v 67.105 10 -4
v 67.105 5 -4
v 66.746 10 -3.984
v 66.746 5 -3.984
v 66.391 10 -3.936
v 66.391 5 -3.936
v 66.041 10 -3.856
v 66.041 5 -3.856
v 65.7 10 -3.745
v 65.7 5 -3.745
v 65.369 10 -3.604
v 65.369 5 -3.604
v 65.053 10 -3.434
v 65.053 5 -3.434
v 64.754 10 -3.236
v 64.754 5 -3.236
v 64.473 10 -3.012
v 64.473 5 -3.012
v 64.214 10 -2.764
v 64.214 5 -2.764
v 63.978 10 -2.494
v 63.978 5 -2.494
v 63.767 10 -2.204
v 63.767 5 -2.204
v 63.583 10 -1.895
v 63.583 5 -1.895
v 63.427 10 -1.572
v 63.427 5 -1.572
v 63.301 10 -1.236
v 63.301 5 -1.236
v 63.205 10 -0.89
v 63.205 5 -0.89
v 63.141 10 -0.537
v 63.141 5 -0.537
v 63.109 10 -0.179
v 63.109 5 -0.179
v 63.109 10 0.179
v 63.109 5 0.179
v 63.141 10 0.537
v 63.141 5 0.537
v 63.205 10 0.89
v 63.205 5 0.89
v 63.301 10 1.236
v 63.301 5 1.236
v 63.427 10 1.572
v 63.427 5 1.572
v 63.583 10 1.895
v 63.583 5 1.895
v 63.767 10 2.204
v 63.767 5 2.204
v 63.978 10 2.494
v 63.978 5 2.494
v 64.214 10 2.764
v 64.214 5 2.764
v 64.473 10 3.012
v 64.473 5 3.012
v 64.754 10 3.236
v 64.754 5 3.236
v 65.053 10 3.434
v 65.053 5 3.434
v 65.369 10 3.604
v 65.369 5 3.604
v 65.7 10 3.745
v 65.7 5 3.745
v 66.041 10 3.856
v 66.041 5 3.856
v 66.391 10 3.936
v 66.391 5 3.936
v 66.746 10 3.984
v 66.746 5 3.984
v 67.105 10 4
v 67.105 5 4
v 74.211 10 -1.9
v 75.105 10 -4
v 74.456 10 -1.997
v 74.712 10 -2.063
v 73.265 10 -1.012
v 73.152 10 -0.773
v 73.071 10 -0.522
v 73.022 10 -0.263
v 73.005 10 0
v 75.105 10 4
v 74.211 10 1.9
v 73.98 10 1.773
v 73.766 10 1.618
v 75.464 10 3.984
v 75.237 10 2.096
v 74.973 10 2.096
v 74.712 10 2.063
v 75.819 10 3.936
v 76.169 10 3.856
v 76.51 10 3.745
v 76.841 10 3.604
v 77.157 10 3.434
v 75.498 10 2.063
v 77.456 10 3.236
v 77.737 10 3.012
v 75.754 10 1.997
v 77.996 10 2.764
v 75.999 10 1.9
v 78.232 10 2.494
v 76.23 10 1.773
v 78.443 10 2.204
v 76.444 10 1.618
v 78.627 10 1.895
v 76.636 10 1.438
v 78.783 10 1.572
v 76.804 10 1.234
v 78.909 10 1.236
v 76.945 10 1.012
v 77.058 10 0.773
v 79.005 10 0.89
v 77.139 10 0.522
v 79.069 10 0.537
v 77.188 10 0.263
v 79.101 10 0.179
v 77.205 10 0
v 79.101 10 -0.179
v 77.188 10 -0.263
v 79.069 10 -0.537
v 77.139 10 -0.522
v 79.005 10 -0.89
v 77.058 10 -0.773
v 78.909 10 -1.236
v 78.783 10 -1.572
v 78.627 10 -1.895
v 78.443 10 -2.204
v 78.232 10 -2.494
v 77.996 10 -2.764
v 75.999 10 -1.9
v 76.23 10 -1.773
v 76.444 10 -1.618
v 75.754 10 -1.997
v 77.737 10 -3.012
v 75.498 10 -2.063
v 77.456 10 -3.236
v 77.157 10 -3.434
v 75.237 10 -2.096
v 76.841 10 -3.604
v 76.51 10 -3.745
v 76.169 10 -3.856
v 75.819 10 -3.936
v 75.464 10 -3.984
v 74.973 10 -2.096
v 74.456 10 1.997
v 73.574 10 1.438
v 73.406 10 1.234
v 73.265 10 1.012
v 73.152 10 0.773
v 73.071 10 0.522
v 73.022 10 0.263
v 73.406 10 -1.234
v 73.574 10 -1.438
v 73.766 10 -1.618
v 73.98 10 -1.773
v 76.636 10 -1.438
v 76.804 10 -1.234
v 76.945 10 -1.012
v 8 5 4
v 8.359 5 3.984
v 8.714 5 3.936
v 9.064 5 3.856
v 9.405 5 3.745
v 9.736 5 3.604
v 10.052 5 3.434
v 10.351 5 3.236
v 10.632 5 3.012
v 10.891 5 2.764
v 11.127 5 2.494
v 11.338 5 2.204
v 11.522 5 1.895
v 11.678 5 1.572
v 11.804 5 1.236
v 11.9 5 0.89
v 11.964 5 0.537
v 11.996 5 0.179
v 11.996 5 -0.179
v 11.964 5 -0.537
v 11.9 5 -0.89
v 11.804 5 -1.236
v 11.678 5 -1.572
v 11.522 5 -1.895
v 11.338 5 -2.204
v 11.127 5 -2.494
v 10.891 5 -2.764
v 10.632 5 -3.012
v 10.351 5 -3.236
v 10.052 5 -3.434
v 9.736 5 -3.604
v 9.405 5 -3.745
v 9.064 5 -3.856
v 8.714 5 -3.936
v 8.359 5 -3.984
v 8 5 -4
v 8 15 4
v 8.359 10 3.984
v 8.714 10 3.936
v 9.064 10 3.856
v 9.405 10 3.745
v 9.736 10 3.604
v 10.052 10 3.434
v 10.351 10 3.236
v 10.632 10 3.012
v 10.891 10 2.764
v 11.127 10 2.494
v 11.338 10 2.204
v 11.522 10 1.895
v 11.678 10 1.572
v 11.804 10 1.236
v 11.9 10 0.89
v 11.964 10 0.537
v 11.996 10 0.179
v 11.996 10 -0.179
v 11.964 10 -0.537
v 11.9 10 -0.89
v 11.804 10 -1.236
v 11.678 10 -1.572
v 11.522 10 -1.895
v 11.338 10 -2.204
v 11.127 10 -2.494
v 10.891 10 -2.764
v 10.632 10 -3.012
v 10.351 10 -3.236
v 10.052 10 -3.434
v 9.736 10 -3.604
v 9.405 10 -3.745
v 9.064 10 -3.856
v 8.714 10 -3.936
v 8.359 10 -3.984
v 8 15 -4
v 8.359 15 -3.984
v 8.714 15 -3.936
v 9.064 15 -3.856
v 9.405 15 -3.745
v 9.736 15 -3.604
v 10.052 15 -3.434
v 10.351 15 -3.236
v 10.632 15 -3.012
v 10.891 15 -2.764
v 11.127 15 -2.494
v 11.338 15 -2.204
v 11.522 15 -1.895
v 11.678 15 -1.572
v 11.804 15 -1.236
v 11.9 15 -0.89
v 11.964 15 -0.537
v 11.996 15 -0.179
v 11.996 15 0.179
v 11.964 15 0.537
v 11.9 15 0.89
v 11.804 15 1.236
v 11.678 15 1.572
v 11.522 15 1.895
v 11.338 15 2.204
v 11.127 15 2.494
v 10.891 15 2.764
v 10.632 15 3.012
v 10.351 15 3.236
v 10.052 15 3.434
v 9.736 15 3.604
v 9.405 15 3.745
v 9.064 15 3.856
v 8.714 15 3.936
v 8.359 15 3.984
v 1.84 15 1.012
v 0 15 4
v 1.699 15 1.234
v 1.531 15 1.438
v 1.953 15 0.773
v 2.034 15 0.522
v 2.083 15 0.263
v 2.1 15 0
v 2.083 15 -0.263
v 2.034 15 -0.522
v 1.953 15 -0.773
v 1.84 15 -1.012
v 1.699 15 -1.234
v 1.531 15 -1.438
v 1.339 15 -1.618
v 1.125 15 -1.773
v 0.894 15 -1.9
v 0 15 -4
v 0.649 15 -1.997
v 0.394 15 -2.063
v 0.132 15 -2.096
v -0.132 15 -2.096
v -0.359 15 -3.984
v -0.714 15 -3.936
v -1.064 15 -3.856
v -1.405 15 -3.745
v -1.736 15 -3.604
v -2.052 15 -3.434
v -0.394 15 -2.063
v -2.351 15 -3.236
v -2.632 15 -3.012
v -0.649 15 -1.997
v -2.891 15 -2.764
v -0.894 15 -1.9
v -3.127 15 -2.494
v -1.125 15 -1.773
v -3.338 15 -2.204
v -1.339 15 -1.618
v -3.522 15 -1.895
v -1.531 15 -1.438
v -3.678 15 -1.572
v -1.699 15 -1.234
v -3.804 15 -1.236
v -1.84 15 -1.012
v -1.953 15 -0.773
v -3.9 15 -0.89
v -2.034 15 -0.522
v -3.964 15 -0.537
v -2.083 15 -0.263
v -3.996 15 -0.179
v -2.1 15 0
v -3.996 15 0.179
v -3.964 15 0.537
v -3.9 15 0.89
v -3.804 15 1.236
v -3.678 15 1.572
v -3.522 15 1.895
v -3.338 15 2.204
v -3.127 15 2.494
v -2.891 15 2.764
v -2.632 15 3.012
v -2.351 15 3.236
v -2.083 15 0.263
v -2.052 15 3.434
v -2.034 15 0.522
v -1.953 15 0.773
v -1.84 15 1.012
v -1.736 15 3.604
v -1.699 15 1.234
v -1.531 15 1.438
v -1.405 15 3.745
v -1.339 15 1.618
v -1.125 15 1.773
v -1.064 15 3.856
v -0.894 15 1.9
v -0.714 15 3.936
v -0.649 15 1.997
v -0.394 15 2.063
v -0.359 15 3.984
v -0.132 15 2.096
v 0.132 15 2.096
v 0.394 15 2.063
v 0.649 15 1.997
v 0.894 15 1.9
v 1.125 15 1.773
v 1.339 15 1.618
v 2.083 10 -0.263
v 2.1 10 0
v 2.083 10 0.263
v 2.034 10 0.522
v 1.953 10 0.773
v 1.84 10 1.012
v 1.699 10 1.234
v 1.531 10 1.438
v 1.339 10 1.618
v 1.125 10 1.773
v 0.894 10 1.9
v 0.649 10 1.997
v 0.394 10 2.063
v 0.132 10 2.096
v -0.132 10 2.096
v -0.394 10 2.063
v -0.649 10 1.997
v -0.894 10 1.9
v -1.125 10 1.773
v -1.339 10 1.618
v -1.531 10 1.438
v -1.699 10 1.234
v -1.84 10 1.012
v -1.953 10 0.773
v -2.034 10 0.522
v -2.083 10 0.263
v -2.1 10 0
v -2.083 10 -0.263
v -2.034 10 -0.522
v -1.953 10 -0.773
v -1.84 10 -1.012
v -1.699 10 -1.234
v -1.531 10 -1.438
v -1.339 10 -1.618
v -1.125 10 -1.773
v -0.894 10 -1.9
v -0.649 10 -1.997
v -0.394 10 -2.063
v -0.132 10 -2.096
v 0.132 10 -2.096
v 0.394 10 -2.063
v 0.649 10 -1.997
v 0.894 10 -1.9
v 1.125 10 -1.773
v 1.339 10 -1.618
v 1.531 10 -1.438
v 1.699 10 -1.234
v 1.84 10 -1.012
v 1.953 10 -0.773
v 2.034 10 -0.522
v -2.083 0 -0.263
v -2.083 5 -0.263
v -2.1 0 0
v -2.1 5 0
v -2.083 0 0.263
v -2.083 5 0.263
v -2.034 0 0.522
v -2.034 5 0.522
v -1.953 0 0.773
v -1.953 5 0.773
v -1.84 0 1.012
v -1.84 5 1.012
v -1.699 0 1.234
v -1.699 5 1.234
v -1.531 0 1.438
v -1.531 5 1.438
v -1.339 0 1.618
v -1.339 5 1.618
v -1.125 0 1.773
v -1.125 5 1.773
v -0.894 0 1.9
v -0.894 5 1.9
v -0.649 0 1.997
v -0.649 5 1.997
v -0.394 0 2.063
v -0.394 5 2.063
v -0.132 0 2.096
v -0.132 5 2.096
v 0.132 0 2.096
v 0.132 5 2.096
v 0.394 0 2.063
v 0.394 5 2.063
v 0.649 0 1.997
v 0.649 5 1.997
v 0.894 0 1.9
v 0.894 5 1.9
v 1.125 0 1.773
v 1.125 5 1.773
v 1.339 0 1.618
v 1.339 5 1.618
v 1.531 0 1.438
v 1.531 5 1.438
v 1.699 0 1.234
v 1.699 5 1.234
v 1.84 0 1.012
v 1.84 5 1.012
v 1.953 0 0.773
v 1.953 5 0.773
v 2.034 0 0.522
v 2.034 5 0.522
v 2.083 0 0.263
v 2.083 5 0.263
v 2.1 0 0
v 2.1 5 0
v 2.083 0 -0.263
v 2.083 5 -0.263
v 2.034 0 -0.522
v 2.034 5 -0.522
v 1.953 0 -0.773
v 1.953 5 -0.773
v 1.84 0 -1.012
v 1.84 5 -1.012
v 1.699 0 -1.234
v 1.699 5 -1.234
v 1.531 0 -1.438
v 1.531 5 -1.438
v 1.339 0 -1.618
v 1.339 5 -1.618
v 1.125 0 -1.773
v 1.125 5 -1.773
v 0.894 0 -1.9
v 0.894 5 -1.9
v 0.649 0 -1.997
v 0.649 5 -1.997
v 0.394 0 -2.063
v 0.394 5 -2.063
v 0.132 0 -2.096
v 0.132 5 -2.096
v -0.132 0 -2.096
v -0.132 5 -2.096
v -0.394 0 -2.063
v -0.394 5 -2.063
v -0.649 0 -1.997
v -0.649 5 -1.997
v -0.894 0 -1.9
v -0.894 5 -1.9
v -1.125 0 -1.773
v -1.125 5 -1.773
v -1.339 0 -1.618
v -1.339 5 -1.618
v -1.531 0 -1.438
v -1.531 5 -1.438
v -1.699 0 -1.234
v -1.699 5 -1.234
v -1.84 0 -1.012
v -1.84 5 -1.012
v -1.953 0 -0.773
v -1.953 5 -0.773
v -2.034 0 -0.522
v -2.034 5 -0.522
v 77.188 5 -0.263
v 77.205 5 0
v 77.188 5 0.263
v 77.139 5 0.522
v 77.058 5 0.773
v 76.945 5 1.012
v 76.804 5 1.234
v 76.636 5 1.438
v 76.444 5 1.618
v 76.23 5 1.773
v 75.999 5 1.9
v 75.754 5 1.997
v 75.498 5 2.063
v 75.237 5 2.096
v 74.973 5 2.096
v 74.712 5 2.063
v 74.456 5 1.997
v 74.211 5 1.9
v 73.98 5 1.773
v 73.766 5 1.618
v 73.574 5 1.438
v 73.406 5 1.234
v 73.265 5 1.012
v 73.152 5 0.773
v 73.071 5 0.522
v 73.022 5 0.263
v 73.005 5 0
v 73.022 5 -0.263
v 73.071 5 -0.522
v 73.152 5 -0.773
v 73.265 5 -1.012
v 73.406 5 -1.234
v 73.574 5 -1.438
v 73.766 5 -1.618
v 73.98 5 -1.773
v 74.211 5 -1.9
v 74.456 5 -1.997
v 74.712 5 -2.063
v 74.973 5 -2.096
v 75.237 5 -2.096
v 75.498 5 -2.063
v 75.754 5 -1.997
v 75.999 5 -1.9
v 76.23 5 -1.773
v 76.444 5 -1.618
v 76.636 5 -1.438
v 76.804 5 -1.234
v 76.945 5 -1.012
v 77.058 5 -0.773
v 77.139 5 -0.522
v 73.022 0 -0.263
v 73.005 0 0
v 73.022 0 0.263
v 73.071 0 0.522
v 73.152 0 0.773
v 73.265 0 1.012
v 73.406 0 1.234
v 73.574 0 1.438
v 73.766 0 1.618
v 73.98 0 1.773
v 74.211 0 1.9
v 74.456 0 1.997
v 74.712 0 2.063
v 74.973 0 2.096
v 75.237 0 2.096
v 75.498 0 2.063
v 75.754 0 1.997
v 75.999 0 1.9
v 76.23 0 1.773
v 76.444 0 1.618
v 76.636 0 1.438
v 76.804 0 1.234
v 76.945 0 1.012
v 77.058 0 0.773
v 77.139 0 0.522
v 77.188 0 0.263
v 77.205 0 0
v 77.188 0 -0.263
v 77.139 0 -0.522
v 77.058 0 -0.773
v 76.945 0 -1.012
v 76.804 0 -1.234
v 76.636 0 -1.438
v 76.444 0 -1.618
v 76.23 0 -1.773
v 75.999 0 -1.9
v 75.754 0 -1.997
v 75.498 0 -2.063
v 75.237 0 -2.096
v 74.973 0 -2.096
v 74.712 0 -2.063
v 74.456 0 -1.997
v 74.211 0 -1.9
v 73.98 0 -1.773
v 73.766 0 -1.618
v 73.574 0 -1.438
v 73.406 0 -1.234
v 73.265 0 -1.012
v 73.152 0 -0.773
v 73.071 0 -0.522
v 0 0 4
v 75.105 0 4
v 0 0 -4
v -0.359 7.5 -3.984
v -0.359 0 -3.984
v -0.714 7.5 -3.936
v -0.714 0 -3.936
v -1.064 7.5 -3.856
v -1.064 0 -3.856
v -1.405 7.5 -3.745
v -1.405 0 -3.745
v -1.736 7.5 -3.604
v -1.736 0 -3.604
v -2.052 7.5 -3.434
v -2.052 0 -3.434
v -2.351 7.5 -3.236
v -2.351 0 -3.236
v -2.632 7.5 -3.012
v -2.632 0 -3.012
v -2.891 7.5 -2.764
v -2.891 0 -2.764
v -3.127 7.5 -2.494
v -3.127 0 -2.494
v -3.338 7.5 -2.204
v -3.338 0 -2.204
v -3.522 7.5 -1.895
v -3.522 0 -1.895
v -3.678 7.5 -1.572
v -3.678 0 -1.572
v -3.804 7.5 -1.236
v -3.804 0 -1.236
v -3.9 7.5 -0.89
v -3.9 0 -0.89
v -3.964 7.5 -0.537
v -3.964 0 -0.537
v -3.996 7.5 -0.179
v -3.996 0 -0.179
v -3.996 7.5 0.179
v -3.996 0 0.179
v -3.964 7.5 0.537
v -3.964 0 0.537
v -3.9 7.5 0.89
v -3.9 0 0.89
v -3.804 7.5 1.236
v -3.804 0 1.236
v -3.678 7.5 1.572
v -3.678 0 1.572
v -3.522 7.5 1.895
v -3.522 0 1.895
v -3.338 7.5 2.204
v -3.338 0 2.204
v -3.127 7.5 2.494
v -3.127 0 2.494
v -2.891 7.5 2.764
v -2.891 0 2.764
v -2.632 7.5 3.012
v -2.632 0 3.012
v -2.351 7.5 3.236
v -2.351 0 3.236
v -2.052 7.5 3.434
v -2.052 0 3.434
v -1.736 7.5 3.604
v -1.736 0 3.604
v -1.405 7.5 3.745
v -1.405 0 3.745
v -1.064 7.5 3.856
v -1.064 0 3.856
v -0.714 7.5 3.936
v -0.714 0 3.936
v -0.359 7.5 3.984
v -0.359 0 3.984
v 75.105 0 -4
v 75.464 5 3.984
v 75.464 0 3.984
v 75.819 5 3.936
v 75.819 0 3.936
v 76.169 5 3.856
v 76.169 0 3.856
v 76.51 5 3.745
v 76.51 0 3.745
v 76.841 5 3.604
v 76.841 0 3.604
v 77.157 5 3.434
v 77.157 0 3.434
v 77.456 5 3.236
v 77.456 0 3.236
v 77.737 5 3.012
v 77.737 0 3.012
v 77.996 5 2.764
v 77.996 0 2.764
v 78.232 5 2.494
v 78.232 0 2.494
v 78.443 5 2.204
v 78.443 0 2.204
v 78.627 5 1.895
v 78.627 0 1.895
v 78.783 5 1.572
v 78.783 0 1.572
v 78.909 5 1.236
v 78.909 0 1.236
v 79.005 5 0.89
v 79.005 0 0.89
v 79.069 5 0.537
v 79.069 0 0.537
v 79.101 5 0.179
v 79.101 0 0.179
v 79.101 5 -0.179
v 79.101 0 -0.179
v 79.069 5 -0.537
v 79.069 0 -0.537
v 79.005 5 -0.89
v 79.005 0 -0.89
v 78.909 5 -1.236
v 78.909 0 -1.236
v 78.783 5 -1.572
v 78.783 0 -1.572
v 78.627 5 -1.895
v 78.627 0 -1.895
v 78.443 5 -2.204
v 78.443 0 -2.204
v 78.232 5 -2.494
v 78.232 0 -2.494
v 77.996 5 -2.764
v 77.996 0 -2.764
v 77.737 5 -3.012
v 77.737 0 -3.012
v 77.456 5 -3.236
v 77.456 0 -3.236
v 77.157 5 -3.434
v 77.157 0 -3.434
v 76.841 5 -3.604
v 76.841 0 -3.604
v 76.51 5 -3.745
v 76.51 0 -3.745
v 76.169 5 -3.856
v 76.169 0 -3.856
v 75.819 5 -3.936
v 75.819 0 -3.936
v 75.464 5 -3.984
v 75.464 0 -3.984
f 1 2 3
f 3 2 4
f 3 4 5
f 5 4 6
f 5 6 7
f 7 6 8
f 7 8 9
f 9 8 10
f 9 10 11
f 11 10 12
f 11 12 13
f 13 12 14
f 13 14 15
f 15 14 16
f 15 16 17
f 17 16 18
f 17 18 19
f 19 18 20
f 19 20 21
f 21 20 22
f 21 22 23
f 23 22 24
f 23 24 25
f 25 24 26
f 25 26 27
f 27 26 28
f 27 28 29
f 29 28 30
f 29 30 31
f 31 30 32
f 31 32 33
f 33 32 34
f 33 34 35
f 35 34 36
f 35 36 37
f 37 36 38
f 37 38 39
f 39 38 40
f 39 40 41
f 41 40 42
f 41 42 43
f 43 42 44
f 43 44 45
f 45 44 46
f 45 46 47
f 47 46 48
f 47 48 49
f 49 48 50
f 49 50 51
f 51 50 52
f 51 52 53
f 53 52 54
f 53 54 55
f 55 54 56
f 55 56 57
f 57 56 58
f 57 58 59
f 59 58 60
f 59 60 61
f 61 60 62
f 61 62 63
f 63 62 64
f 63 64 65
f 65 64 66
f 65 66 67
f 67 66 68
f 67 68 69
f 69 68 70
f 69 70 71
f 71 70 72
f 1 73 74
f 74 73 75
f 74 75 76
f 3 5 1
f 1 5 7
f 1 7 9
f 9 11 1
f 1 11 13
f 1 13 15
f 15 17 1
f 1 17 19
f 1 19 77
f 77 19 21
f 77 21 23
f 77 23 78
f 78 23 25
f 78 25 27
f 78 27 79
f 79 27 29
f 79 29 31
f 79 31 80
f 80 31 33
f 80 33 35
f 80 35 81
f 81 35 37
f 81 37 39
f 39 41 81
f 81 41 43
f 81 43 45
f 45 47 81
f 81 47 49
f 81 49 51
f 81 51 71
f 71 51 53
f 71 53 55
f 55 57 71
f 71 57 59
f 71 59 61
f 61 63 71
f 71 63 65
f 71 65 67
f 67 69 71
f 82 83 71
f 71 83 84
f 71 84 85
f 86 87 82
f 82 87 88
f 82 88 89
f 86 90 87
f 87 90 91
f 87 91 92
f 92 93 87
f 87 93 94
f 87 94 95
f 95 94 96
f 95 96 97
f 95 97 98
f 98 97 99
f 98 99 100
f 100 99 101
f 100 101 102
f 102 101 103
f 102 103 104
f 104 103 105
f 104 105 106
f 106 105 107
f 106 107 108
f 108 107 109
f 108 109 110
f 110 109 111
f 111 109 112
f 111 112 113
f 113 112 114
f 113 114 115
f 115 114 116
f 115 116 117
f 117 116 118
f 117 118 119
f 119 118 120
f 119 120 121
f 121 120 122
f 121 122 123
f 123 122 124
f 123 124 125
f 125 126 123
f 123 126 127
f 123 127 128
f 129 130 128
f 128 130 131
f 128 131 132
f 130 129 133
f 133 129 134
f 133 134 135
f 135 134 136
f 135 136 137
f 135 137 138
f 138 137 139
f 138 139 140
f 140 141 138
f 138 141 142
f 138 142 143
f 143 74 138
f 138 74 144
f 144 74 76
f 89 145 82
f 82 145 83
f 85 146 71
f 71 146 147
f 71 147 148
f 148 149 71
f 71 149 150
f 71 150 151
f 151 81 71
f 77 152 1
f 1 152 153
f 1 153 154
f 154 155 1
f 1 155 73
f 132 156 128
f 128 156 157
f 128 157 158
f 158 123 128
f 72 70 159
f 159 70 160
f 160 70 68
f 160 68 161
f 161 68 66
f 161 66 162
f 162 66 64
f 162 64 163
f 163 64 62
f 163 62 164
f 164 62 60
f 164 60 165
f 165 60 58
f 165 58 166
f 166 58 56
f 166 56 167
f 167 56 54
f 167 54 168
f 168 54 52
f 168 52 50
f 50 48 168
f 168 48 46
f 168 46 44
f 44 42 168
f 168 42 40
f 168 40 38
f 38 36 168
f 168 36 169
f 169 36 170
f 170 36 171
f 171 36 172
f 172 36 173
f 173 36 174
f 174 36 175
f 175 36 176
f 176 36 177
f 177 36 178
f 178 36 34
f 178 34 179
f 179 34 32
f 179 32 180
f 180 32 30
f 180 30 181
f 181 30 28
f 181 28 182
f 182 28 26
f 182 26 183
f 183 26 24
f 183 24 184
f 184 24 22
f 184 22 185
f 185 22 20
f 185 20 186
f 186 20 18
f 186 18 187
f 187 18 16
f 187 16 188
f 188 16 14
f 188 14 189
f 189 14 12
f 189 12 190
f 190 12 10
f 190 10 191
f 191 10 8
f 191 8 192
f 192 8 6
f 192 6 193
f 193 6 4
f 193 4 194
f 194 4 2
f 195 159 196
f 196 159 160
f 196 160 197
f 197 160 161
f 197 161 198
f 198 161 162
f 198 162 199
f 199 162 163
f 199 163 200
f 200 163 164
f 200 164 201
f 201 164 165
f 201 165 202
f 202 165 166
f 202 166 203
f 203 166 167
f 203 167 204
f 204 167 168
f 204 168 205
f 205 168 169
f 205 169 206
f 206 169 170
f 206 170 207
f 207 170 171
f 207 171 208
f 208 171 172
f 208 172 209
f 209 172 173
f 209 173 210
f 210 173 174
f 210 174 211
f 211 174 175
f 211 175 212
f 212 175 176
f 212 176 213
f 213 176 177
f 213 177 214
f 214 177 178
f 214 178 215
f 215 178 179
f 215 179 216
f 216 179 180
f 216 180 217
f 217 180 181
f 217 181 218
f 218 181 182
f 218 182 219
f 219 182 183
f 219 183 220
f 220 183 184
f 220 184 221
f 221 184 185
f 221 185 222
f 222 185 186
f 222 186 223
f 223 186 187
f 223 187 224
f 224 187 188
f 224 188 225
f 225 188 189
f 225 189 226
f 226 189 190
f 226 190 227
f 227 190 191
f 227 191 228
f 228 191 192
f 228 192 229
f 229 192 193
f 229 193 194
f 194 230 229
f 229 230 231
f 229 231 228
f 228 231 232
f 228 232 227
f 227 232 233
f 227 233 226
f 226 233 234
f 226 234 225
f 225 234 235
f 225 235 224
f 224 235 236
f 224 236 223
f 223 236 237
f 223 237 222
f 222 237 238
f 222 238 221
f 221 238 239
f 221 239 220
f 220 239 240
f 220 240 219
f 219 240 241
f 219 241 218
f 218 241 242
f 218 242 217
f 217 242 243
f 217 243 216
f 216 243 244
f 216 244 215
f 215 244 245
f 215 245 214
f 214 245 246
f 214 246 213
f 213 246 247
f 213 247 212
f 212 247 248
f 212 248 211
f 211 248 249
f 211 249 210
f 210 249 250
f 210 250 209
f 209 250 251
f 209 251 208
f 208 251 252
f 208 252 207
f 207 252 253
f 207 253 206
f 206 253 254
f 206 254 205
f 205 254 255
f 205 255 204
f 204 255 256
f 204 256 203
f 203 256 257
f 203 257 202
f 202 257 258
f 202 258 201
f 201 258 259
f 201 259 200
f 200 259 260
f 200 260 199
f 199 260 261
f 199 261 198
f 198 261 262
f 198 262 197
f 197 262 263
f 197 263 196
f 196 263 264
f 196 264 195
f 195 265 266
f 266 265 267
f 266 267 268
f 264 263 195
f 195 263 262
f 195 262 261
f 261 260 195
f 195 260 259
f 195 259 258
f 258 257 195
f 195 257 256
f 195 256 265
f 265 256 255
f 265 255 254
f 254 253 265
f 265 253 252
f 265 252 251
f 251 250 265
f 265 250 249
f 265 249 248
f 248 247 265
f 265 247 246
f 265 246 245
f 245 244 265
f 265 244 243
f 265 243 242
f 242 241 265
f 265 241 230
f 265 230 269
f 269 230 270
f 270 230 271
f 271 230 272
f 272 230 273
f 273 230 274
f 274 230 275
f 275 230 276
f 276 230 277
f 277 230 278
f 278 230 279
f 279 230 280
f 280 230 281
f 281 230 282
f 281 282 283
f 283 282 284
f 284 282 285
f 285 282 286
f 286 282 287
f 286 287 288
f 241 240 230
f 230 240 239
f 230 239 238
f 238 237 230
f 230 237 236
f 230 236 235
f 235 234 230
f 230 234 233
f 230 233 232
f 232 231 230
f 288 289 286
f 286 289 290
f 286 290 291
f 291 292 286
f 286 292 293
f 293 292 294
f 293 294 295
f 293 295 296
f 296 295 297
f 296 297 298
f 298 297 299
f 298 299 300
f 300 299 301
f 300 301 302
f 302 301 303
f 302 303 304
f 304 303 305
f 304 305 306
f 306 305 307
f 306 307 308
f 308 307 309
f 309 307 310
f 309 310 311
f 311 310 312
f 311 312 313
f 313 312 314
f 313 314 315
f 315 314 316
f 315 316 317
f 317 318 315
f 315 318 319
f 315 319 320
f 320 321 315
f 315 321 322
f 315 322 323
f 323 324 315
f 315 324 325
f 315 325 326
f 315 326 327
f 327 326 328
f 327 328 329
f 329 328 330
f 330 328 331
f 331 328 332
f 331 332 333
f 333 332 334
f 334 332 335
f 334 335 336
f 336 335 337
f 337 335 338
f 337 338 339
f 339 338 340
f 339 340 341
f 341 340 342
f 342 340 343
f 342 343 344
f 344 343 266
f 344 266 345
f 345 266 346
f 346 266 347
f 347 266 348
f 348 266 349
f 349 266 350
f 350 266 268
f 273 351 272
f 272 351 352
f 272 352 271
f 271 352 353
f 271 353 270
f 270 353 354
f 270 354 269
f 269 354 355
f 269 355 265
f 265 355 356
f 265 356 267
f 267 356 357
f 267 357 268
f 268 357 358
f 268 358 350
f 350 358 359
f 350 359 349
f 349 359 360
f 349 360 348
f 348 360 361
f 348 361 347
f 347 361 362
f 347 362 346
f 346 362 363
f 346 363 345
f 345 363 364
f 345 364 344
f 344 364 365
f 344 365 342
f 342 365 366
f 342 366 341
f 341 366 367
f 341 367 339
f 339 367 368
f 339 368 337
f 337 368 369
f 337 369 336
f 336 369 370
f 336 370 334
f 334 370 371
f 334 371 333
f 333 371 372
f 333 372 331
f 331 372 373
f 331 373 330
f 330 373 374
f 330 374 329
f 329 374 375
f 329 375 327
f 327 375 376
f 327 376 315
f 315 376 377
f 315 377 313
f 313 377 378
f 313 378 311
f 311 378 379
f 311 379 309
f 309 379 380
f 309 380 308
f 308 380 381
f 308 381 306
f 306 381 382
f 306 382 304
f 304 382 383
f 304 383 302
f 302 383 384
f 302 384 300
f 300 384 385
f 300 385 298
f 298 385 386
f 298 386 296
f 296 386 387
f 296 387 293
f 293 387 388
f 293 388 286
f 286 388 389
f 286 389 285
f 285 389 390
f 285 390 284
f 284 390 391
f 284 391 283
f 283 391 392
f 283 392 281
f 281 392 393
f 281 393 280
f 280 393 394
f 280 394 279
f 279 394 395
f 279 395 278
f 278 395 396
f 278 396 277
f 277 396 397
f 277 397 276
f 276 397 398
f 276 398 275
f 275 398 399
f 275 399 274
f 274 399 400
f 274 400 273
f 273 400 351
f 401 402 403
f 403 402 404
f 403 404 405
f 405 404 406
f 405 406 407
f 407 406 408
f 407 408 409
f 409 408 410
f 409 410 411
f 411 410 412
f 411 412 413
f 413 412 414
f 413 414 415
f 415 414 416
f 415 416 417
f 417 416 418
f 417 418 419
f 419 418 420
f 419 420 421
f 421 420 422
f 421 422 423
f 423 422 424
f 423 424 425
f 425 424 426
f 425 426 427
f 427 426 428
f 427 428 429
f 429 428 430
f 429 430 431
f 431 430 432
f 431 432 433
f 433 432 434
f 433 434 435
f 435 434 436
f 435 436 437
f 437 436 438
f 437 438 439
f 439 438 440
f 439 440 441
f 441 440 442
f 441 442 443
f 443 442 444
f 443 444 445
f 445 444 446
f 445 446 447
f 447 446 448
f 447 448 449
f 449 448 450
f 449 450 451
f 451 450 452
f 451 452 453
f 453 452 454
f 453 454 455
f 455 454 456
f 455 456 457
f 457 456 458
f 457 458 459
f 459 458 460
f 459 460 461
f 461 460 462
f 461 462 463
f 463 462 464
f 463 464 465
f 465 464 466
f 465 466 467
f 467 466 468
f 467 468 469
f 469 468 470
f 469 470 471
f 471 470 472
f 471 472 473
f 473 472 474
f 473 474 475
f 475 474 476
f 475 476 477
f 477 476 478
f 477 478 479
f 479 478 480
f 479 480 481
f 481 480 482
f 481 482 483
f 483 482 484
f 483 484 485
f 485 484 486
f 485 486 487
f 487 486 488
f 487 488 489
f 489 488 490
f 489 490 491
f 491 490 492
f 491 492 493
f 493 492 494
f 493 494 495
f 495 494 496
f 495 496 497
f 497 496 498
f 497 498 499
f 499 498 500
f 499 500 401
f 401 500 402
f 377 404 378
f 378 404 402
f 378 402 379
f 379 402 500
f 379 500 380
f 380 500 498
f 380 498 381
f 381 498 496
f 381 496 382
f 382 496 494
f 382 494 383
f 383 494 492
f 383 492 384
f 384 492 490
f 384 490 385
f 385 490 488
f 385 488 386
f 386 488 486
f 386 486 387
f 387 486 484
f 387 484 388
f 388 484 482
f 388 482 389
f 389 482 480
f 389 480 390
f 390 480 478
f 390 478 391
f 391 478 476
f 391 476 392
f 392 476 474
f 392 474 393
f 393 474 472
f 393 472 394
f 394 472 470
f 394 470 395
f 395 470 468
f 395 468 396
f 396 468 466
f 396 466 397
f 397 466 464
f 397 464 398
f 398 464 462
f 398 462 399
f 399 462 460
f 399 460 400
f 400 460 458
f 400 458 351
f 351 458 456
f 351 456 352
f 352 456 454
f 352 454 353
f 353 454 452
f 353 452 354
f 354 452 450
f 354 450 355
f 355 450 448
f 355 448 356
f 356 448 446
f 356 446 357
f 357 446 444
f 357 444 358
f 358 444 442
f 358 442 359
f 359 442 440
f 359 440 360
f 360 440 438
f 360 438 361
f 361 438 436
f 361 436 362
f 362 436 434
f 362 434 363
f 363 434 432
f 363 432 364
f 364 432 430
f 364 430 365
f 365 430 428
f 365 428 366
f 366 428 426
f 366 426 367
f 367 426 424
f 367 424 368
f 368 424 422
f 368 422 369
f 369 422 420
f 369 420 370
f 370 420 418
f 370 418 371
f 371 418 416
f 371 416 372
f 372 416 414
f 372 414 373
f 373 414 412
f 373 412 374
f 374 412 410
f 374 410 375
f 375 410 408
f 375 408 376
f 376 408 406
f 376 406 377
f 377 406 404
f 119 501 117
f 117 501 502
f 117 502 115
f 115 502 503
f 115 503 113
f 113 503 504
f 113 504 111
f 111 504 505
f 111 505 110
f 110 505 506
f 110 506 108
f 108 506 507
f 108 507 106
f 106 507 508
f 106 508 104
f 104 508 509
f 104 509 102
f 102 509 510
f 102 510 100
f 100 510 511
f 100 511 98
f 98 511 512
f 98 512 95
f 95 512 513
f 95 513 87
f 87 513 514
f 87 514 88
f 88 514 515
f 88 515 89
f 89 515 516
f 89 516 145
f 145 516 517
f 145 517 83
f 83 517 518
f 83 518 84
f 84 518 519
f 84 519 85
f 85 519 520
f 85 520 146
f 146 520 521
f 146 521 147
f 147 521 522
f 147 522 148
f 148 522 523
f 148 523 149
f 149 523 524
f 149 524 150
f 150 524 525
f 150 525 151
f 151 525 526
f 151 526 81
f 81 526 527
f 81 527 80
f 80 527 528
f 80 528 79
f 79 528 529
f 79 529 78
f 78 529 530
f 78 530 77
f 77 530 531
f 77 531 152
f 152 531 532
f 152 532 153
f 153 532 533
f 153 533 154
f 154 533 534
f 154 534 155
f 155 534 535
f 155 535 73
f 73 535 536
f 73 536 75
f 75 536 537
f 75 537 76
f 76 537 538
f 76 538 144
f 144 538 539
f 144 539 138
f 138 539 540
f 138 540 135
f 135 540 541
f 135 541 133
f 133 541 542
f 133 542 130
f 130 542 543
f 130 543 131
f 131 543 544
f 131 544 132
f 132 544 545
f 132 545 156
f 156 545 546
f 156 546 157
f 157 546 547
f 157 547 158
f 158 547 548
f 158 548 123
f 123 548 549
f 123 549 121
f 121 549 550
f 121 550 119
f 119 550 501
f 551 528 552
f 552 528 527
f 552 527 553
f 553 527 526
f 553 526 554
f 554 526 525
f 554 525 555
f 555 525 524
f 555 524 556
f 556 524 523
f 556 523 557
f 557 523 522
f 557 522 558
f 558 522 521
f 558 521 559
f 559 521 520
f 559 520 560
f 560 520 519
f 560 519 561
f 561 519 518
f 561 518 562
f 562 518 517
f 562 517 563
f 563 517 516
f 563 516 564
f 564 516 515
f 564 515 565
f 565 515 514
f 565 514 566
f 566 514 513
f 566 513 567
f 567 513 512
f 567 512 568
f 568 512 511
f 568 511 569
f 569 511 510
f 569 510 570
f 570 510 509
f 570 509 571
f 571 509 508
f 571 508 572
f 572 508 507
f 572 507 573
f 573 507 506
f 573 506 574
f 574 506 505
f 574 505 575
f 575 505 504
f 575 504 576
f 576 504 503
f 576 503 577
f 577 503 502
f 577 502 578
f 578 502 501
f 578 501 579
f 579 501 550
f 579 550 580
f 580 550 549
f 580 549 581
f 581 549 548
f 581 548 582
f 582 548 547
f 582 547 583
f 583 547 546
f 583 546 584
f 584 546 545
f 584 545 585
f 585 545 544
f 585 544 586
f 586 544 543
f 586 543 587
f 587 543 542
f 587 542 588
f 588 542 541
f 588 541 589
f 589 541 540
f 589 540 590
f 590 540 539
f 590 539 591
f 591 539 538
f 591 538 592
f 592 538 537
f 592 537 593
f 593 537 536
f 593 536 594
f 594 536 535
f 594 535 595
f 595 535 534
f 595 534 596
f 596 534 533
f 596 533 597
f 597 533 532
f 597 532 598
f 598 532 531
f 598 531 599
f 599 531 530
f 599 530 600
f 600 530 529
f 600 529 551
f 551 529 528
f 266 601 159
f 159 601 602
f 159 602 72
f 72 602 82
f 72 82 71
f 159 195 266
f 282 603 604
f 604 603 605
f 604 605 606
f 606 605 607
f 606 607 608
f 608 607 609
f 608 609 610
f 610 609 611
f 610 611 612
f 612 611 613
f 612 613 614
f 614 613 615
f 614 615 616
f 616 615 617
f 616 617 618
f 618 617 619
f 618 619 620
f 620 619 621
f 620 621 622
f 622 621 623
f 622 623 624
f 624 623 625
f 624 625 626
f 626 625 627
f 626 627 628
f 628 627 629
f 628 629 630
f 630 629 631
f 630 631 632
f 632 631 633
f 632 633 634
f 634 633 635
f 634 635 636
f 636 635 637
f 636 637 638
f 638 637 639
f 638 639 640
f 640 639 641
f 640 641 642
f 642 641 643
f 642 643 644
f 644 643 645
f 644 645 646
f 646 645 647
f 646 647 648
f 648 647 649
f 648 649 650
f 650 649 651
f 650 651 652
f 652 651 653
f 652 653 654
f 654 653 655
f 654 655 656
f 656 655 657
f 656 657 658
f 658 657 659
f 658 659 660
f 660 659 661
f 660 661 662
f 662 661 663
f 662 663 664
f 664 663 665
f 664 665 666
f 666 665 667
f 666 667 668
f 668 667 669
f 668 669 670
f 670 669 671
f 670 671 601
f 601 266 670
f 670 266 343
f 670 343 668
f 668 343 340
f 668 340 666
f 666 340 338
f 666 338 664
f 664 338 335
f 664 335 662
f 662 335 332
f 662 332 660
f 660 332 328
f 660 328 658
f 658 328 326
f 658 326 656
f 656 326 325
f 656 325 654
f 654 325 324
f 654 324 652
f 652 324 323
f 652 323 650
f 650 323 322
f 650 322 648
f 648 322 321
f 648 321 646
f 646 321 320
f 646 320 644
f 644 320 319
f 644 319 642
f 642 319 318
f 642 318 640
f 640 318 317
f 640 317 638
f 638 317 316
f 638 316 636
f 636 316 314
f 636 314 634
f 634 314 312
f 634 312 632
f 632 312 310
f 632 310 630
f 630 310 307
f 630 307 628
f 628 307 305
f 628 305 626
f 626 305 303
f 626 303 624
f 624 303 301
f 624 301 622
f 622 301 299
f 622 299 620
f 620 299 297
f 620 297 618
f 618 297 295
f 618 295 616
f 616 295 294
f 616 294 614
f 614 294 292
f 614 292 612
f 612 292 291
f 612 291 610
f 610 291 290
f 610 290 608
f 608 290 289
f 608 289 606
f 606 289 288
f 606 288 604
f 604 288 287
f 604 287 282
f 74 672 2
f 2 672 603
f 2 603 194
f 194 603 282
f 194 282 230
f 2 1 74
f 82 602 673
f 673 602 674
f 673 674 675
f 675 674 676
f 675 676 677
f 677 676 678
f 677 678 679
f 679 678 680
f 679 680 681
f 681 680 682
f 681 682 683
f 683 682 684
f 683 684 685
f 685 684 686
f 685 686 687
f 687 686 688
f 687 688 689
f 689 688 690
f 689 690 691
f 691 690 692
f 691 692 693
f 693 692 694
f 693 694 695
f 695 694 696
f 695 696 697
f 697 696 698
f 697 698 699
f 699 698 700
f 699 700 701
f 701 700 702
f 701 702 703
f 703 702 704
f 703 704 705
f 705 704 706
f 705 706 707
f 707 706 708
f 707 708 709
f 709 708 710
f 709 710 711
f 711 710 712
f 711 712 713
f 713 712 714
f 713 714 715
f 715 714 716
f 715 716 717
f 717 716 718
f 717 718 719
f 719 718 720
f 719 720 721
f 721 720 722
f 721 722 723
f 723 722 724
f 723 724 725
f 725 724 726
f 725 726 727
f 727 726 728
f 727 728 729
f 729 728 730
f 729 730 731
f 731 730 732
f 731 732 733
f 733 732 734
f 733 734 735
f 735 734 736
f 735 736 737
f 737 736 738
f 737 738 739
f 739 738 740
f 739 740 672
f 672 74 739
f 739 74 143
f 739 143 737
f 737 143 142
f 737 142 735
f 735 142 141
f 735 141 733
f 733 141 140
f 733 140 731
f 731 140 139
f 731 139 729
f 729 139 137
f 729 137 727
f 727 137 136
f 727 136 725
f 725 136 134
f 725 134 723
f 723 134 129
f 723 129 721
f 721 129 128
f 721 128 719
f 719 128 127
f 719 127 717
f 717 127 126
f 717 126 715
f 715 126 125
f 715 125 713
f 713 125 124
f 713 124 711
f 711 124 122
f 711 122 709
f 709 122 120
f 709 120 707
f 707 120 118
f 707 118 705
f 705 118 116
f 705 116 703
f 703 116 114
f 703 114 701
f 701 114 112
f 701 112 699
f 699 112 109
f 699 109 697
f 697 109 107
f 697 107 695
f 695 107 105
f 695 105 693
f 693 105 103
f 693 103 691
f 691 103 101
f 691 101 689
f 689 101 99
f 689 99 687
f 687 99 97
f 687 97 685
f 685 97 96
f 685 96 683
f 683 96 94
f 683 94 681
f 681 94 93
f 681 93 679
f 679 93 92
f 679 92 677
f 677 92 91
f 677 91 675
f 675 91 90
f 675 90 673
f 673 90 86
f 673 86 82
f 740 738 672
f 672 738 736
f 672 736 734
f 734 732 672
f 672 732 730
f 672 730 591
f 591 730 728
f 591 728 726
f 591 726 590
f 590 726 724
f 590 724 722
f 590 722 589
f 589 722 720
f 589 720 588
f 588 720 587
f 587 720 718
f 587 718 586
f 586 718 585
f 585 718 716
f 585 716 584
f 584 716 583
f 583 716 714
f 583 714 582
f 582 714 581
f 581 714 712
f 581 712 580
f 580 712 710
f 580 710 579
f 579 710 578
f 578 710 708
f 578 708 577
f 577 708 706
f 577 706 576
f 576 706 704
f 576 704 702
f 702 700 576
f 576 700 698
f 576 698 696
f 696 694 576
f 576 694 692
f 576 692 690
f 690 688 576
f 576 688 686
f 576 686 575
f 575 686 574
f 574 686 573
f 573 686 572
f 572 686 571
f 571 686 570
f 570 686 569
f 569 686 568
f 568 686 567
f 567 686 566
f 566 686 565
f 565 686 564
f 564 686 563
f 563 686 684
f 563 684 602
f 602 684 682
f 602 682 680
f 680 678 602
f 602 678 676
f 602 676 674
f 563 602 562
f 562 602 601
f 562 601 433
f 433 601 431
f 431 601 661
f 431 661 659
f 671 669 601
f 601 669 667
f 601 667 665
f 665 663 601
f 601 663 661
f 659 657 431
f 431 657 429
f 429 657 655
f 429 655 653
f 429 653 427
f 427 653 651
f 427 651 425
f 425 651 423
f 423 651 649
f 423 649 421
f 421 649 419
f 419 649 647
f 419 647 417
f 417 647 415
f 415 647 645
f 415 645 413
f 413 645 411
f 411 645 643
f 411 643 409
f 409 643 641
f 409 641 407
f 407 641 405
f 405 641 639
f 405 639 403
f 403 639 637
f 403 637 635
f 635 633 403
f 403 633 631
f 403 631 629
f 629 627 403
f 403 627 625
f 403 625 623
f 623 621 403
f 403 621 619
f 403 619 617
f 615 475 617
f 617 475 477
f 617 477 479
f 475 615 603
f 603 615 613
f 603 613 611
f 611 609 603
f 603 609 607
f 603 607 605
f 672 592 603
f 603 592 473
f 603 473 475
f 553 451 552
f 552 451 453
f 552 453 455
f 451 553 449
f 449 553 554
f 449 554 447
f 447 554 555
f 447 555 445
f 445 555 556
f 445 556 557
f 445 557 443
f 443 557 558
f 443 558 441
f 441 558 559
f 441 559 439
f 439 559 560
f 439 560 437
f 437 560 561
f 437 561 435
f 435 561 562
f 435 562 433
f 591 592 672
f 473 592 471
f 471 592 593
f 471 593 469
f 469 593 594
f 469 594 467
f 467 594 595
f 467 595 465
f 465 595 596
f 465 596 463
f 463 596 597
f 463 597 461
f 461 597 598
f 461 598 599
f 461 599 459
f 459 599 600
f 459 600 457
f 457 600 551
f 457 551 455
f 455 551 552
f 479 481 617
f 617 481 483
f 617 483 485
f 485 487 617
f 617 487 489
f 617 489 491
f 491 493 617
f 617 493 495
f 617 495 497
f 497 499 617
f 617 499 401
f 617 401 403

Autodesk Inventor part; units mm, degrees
ref_plane "YZ Plane" through (0, 0, 0) normal (1, 0, 0) x (0, 1, 0)
ref_plane "XZ Plane" through (0, 0, 0) normal (0, 1, 0) x (-1, 0, 0)
ref_plane "XY Plane" through (0, 0, 0) normal (0, 0, 1) x (1, 0, 0)
sketch "Sketch1" plane through (0, 0, 0) normal (0, 1, 0) x (-1, 0, 0)
  line L0 (0, 0) -> (-75.105, 0) construction
  line L1 (0, 4) -> (-75.105, 4)
  line L2 (-75.105, -4) -> (0, -4)
  arc A0 (0, -4) -> (0, 4) centre (0, 0) ccw
  arc A1 (-75.105, 4) -> (-75.105, -4) centre (-75.105, 0) ccw
  circle A2 centre (0, 0) radius 2.1
  circle A3 centre (-75.105, 0) radius 2.1
  point P0 (-37.5525, 0)
  dimension "d0" = 75.105
  dimension "d1" = 8
  dimension "d2" = 4.2
  dimension "d10" = 4.2
extrude "Extrusion1" add sketch "Sketch1" along normal blind 5
sketch "Sketch4" plane through (0, 5, 0) normal (0, 1, 0) x (1, 0, 0)
  circle A0 centre (8, 0) radius 4
  circle A1 centre (67.105, 0) radius 4
  arc A2 (75.105, -4) -> (75.105, 4) centre (75.105, 0) ccw projected
  line L0 (75.105, 4) -> (0, 4) projected
  arc A3 (0, 4) -> (0, -4) centre (0, 0) ccw projected
  line L1 (0, -4) -> (75.105, -4) projected
  circle A4 centre (75.105, 0) radius 2.1 projected
  circle A5 centre (0, 0) radius 2.1 projected
  point P0 (8, -4)
  point P1 (8, 4)
  point P2 (67.105, 4)
  point P3 (67.105, -4)
  dimension "d30" = 8
  dimension "d31" = 8
  dimension "d32" = 8
  dimension "d33" = 8
extrude "Extrusion7" add sketch "Sketch4" along normal blind 10 contours A0 | A0 L1 A3 L0
extrude "Extrusion8" add sketch "Sketch4" along normal blind 5 contours L0 A2 L1 A1 | A1
